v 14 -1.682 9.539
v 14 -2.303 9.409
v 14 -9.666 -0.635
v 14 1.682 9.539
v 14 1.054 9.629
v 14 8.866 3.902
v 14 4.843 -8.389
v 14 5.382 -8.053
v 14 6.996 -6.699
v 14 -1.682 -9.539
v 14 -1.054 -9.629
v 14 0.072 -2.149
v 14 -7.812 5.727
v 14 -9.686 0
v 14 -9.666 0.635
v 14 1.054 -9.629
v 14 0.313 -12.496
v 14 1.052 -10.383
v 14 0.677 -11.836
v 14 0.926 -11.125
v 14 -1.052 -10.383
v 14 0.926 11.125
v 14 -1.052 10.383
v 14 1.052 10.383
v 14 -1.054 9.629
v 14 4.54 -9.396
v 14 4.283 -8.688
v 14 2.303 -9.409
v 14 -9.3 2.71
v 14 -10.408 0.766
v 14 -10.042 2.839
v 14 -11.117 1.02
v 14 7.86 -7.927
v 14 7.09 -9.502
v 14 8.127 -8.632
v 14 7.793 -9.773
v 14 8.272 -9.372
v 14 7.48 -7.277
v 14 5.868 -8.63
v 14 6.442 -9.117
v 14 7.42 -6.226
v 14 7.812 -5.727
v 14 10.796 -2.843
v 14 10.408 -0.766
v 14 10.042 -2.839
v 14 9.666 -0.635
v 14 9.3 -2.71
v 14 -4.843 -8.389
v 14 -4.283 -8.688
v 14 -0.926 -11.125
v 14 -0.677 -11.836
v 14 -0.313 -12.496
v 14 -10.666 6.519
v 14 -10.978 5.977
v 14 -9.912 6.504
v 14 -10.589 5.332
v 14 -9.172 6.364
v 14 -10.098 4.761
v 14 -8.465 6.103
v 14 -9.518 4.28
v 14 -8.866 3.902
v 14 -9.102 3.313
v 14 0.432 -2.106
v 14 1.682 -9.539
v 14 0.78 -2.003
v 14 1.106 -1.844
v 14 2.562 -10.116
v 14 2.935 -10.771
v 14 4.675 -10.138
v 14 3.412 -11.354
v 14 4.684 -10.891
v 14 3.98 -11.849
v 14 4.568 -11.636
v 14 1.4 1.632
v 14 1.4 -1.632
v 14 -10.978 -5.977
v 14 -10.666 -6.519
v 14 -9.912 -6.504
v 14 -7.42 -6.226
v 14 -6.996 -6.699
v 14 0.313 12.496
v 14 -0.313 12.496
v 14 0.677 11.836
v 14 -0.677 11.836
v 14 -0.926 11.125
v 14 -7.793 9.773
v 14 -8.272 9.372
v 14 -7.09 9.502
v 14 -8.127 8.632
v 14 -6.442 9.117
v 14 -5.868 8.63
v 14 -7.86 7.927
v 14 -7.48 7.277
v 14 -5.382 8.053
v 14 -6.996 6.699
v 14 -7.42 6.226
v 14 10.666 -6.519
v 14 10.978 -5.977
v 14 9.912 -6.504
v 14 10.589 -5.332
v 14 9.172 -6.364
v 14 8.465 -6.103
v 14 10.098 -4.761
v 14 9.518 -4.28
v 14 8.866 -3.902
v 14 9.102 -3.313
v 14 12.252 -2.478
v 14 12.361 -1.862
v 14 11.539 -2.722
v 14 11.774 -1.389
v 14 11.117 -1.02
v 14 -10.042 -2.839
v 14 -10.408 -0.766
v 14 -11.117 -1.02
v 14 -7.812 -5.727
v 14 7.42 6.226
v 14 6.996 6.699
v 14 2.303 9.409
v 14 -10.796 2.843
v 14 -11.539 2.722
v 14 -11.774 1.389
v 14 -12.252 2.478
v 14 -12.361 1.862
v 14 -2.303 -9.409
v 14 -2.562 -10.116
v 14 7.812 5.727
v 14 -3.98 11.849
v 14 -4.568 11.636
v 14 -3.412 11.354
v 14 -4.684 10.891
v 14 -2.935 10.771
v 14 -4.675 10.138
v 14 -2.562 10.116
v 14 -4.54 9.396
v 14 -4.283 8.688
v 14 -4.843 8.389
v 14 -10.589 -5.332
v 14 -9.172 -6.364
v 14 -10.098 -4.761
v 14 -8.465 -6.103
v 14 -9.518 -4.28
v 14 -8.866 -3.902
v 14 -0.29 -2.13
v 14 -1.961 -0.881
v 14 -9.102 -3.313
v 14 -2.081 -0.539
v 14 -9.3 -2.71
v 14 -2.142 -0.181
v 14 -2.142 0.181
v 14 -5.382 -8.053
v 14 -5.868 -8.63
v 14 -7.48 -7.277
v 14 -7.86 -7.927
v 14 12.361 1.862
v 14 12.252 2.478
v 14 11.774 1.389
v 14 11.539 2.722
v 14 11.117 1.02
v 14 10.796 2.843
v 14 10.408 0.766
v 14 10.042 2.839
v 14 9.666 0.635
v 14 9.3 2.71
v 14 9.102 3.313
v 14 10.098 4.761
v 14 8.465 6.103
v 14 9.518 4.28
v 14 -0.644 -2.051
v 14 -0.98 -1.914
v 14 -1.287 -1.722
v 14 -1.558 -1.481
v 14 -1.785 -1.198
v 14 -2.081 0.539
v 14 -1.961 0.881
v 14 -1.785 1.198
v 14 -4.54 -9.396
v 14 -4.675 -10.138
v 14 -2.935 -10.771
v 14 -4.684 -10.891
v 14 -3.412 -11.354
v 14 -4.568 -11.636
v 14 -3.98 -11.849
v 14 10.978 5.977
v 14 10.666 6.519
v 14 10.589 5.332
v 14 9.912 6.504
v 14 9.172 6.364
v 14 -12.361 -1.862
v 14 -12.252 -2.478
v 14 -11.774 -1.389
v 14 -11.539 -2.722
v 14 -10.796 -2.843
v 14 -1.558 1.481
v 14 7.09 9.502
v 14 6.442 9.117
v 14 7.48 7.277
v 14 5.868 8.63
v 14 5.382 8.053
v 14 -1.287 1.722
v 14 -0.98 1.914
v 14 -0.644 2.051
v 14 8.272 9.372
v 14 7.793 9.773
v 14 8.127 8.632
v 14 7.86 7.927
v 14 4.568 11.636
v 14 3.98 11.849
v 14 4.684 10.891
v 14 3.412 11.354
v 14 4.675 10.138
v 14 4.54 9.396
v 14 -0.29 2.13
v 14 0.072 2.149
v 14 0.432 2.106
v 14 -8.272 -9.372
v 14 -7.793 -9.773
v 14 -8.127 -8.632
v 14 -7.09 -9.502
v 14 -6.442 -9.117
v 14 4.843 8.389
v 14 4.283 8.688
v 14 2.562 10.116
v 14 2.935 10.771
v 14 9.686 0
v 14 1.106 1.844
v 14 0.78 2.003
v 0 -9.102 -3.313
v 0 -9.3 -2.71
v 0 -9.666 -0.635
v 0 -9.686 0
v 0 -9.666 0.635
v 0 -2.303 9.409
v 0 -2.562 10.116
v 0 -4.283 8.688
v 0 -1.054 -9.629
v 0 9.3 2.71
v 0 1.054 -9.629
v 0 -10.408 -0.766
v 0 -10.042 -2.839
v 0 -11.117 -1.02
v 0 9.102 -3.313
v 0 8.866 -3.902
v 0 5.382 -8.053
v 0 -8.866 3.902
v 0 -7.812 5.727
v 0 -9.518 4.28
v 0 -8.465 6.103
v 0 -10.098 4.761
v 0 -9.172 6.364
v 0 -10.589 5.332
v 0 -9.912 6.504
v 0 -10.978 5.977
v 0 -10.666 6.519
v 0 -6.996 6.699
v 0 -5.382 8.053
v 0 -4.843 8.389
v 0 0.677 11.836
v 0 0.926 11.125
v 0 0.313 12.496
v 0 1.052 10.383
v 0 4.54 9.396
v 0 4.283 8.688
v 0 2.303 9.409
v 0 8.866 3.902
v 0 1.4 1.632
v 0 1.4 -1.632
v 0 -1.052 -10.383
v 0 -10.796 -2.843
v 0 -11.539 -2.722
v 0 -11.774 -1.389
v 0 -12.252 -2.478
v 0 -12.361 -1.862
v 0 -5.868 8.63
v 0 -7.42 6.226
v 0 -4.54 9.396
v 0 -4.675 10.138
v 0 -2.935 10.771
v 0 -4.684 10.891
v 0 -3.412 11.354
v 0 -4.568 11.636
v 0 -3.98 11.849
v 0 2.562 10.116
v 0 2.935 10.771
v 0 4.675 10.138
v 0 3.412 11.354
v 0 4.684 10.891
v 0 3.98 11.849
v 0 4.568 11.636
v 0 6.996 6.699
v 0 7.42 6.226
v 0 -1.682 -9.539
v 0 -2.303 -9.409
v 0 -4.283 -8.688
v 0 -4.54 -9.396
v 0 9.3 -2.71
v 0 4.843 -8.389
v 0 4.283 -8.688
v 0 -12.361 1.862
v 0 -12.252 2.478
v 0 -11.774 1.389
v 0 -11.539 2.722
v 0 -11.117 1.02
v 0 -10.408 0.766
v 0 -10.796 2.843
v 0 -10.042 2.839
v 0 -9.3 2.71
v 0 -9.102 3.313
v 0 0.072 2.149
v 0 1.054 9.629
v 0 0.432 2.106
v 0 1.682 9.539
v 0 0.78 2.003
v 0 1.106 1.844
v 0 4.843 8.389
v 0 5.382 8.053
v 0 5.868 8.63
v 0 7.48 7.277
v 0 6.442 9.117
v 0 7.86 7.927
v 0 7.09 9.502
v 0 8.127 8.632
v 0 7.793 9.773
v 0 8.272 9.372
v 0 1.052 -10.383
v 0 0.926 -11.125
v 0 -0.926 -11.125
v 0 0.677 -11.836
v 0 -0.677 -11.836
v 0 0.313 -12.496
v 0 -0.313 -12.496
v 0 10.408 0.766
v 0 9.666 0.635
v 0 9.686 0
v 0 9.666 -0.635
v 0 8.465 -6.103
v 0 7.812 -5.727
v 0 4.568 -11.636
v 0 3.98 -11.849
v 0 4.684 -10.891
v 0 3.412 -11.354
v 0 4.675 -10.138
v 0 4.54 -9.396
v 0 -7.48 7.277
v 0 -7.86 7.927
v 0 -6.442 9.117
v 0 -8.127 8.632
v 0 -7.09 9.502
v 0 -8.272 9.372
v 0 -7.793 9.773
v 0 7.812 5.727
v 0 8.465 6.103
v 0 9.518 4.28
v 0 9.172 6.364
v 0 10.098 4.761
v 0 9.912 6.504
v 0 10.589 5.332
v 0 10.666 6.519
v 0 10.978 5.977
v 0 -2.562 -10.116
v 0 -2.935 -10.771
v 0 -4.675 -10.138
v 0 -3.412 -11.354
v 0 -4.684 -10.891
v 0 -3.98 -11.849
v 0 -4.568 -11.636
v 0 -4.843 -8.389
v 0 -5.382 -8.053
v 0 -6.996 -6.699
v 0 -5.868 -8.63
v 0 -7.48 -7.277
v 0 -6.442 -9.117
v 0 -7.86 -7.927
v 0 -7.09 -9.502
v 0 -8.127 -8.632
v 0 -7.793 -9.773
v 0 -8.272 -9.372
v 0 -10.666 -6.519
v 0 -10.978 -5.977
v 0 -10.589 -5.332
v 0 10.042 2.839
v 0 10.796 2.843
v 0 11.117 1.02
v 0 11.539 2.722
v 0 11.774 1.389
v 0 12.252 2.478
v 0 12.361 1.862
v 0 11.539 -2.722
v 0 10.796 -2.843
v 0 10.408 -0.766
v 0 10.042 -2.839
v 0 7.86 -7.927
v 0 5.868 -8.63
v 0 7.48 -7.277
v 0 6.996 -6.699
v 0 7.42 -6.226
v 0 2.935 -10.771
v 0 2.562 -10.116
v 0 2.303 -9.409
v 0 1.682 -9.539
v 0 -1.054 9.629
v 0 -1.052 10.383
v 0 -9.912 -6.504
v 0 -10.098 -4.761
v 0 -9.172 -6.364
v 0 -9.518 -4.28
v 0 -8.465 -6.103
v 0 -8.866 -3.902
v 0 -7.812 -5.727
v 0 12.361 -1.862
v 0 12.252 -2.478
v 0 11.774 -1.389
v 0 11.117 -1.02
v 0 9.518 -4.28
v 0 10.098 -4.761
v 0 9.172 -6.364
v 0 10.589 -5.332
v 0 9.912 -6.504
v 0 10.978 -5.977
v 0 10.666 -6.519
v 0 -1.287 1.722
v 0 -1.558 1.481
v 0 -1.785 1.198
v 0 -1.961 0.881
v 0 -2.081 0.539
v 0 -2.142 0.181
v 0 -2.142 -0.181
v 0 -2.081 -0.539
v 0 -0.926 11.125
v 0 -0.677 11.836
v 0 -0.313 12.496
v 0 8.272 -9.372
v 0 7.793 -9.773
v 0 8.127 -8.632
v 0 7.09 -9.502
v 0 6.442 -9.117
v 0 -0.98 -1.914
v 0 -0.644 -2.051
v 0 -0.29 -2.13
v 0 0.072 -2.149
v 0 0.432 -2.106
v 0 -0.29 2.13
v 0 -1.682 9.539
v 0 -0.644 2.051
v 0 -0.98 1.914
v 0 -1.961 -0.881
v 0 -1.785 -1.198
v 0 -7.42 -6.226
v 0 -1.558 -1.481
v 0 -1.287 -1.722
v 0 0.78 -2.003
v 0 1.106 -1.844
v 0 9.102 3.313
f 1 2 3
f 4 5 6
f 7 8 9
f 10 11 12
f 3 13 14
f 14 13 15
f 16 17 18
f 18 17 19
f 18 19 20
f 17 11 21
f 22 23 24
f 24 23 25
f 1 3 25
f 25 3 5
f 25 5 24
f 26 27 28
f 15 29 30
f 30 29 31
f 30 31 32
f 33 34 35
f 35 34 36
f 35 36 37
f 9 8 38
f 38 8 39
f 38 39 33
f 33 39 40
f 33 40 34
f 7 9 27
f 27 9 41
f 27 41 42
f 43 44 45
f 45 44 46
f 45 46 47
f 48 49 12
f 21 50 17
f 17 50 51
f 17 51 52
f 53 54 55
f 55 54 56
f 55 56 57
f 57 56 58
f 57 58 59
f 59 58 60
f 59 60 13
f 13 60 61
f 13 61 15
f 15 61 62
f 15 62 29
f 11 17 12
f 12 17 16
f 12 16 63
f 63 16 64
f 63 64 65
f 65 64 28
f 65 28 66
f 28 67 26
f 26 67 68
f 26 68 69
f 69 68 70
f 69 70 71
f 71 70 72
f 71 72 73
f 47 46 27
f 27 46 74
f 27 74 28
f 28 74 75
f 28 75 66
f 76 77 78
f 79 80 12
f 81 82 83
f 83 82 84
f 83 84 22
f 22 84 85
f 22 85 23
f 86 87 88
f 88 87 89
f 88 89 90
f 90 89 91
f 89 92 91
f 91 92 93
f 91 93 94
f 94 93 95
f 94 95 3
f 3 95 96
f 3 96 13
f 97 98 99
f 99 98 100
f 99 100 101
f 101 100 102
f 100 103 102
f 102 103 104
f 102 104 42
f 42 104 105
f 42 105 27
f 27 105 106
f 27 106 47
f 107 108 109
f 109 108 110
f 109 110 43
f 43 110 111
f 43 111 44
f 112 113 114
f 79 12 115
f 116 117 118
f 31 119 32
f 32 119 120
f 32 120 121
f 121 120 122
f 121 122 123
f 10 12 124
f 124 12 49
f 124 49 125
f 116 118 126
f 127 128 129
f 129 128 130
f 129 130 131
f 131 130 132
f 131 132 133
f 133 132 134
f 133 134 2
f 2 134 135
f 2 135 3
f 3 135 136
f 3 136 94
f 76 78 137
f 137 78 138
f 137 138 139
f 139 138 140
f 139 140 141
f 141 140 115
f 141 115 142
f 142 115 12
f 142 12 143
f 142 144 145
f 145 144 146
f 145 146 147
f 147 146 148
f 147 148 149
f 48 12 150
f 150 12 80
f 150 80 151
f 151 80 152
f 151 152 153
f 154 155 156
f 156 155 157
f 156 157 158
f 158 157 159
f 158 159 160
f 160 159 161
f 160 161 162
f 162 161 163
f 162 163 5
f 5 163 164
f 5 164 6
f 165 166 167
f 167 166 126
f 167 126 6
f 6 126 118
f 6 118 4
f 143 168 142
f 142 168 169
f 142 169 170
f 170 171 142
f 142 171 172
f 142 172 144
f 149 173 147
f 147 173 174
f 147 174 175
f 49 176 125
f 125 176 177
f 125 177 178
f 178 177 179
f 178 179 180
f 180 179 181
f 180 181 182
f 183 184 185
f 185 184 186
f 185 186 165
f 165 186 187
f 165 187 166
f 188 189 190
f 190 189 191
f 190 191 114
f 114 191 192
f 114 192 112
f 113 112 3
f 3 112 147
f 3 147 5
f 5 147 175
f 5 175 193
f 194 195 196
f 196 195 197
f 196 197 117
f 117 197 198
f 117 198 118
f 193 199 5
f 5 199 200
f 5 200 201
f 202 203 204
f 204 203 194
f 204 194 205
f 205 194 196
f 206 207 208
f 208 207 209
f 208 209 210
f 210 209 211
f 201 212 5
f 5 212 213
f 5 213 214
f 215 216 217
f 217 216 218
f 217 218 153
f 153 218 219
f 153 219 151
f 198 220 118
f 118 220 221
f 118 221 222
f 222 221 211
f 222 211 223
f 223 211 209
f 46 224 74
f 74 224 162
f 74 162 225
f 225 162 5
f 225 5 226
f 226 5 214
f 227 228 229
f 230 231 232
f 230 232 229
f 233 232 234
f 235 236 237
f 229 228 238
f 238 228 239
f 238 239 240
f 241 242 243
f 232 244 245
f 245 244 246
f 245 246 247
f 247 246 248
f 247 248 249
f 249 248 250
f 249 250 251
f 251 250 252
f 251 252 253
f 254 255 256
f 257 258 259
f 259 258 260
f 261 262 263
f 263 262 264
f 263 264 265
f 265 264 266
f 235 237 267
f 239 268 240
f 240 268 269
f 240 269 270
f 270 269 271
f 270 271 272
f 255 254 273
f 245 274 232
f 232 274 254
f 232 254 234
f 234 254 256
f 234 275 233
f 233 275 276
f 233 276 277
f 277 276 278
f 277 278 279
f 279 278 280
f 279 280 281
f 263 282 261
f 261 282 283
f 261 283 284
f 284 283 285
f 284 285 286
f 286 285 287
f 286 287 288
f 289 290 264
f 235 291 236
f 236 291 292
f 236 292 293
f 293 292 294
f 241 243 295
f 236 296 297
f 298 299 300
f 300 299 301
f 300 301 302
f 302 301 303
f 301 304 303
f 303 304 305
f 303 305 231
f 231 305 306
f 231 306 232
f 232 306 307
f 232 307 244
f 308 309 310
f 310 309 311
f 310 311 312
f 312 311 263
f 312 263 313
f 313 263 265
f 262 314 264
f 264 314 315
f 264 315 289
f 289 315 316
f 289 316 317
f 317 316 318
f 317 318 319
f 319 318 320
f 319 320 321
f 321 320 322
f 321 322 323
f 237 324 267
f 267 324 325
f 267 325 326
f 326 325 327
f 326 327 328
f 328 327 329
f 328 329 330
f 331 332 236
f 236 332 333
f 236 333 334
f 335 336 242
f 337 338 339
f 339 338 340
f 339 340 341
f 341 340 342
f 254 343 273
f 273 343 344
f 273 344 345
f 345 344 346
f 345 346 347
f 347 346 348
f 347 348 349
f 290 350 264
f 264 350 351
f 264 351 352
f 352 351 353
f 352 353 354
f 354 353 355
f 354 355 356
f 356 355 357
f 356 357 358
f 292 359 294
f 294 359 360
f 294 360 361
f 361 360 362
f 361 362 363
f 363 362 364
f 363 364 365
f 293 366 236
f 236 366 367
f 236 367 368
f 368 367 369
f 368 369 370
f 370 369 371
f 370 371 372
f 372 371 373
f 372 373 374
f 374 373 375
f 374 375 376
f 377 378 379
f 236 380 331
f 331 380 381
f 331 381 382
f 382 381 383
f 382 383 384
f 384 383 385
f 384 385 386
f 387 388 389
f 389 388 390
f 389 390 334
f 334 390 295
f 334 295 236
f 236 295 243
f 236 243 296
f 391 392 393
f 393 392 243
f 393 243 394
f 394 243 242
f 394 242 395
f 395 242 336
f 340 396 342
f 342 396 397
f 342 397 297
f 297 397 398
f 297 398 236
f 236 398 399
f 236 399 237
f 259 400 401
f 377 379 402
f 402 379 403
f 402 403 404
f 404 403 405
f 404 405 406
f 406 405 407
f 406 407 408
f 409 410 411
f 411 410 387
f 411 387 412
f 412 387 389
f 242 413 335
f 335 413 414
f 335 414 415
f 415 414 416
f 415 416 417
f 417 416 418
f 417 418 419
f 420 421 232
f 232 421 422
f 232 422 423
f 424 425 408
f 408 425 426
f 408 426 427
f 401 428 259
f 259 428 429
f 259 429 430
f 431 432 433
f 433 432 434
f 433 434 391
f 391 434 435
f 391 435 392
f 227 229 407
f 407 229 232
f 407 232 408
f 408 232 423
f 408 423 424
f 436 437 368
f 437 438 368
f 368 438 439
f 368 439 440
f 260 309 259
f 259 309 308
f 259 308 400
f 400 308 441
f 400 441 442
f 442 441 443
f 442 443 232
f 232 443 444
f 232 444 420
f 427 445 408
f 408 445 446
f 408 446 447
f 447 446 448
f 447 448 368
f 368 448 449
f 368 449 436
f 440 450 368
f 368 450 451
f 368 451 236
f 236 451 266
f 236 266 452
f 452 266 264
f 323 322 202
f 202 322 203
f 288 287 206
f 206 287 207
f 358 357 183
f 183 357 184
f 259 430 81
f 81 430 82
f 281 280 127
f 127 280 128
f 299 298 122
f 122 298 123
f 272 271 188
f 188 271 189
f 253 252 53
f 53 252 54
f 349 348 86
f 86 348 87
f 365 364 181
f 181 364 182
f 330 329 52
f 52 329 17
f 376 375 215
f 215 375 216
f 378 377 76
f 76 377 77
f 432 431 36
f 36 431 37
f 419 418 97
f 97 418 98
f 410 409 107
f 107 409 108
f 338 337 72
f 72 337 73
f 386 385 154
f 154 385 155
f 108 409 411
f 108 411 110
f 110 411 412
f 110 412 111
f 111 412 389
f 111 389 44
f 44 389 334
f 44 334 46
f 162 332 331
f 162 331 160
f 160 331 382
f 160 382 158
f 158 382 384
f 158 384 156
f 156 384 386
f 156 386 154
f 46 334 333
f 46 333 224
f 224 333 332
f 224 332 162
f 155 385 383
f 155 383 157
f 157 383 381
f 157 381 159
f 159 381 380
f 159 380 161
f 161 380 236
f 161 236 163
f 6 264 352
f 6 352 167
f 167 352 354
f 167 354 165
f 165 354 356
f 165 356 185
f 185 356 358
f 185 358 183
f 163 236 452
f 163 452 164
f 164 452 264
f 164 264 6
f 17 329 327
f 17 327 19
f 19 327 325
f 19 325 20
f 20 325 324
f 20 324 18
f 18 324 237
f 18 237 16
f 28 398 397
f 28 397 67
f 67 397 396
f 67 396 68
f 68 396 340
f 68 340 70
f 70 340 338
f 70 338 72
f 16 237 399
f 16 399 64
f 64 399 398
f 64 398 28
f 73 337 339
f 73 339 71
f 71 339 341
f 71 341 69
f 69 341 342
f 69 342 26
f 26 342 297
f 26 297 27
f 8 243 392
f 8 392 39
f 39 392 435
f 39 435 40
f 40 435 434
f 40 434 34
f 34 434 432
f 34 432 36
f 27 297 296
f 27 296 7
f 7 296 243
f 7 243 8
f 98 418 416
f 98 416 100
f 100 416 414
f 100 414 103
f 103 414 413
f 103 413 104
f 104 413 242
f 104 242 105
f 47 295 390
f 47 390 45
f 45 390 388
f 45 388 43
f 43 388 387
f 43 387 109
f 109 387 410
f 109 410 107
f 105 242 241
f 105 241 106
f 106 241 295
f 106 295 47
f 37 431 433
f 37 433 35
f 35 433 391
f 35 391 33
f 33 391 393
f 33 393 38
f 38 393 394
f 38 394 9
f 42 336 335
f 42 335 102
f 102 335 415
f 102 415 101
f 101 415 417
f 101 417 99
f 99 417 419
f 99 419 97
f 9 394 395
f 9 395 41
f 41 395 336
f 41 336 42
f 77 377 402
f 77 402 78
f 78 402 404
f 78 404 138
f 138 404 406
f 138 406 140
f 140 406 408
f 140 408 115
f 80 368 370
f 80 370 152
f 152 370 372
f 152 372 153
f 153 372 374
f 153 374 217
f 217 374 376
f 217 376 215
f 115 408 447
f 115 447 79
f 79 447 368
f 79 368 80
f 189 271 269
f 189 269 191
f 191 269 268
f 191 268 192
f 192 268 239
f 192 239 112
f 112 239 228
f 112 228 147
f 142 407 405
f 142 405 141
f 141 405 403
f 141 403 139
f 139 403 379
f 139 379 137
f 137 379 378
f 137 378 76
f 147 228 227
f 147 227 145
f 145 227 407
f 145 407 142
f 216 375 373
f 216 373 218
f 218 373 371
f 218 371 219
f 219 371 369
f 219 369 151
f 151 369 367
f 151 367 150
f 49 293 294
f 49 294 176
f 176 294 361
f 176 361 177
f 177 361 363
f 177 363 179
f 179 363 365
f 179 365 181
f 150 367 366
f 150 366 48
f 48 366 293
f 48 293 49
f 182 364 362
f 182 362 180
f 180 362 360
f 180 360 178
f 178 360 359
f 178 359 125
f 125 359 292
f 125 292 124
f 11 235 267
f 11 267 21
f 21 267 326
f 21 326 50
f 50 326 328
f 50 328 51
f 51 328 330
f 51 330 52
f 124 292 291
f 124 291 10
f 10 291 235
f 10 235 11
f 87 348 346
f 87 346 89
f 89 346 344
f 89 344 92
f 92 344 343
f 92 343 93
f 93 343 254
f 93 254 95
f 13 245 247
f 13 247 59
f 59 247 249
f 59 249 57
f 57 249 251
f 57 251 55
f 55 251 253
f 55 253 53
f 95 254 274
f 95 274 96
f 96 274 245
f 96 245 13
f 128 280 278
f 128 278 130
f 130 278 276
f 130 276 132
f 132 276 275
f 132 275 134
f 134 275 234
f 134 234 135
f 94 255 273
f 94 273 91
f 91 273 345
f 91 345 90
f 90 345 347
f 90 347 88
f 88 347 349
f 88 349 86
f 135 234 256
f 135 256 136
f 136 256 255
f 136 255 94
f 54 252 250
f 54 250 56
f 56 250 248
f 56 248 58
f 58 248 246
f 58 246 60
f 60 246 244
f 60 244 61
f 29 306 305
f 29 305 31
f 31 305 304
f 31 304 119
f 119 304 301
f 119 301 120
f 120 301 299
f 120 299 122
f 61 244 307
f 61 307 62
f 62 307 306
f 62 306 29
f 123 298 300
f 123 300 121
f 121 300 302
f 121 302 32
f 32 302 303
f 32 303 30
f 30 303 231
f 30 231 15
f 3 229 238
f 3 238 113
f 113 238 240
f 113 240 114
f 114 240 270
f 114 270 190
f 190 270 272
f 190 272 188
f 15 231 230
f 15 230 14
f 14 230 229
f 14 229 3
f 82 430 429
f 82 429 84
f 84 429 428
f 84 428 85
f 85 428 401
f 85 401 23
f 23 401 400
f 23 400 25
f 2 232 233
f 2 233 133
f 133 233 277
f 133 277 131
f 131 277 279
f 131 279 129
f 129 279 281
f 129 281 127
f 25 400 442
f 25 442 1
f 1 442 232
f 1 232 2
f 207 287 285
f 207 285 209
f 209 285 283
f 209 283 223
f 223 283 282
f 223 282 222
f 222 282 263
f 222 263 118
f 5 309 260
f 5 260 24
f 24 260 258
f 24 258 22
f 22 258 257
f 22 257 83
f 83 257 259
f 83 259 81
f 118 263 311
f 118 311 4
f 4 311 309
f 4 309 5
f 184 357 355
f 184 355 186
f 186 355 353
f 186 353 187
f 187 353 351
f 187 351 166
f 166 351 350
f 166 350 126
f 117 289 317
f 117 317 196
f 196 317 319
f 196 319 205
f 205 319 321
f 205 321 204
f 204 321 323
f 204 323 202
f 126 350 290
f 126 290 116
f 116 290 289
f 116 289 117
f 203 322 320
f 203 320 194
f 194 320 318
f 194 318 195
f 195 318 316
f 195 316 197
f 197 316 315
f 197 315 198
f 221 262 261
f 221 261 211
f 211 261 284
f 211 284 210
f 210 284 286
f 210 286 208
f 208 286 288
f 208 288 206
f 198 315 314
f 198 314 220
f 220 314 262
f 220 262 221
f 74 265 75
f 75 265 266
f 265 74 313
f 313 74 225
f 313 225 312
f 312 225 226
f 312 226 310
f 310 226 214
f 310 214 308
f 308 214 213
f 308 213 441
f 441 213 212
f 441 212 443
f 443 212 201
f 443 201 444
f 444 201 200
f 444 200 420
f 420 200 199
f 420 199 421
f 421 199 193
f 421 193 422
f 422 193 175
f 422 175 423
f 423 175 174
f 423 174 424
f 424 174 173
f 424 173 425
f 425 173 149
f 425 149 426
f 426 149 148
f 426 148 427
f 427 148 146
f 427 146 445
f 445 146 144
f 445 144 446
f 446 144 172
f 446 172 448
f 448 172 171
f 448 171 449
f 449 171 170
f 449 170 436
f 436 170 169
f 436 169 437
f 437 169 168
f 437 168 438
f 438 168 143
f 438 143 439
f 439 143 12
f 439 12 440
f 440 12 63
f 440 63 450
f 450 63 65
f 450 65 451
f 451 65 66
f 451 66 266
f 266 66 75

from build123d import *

# Parameters (mm, degrees)
BASPROSKE_W           = 14
BASPROSKE_H           = 12.5
TOOTHCUT_DEPTH        = 23.549944568
TEETHCUTS_COUNT       = 18
BORSKE_R              = 0.4
BORE_DEPTH            = 50.0000508
CORTAR_EXTRUIR1_REACH = 24.473


with BuildPart() as part:
    # BasProSke → Base-Revolve (revolve)
    with BuildSketch(Plane(origin=(0, 0, 0), x_dir=(1, 0, 0), z_dir=(0, 1, 0)), mode=Mode.PRIVATE) as base_revolve_sk:
        with Locations((7, 6.25)):
            Rectangle(BASPROSKE_W, BASPROSKE_H)
    revolve(base_revolve_sk.sketch.rotate(Axis((-10, 0, 0), (1, 0, 0)), 180), axis=Axis((-10, 0, 0), (1, 0, 0)))

    # TooCutSke → ToothCut (cut, through all)
    with BuildSketch(Plane(origin=(0, 0, 0), x_dir=(0, 0, -1), z_dir=(1, 0, 0))):
        with BuildLine():
            ThreePointArc((0.634554124, 9.665693111), (0, 9.6865), (-0.634554124, 9.665693111))
            ThreePointArc((-0.634554124, 9.665693111), (-1.026818848, 11.131124412), (-1.883745888, 12.38293772))
            ThreePointArc((-1.883745888, 12.38293772), (0, 12.5254), (1.883745888, 12.38293772))
            ThreePointArc((1.883745888, 12.38293772), (1.026818848, 11.131124412), (0.634554124, 9.665693111))
        make_face()
    toothcut = extrude(amount=TOOTHCUT_DEPTH, mode=Mode.SUBTRACT)

    # TeethCuts: ToothCut ×18 about axis
    teethcuts_axis = Axis((0, 0, 0), (1, 0, 0))
    for i in range(1, TEETHCUTS_COUNT):
        add(toothcut.rotate(teethcuts_axis, i * 360 / TEETHCUTS_COUNT), mode=Mode.SUBTRACT)

    # BorSke → Bore (cut, symmetric)
    with BuildSketch(Plane(origin=(0, 0, 0), x_dir=(0, 0, -1), z_dir=(1, 0, 0))):
        with Locations(Location((0, 0, 0), (0, 0, 180))):
            Circle(BORSKE_R)
    extrude(amount=BORE_DEPTH, both=True, mode=Mode.SUBTRACT)

    # Croquis1 → Cortar-Extruir1 (cut, up to next)
    with BuildSketch(Plane(origin=(14, 0, 0), x_dir=(0, 0, -1), z_dir=(1, 0, 0)), mode=Mode.PRIVATE) as cortar_extruir1_sk1:
        with BuildLine():
            Line((1.631716887, 1.4), (-1.631716887, 1.4))
            ThreePointArc((-1.631716887, 1.4), (-0.746427723, -2.016270233), (2.15, 0))
            ThreePointArc((2.15, 0), (2.016270233, 0.746427723), (1.631716887, 1.4))
        make_face()
    cortar_extruir1_tool1 = extrude(cortar_extruir1_sk1.sketch, amount=-CORTAR_EXTRUIR1_REACH, mode=Mode.PRIVATE) & part.part
    add(cortar_extruir1_tool1.solids().sort_by_distance((14, -0.225862, 0))[0], mode=Mode.SUBTRACT)


solid = part.part
